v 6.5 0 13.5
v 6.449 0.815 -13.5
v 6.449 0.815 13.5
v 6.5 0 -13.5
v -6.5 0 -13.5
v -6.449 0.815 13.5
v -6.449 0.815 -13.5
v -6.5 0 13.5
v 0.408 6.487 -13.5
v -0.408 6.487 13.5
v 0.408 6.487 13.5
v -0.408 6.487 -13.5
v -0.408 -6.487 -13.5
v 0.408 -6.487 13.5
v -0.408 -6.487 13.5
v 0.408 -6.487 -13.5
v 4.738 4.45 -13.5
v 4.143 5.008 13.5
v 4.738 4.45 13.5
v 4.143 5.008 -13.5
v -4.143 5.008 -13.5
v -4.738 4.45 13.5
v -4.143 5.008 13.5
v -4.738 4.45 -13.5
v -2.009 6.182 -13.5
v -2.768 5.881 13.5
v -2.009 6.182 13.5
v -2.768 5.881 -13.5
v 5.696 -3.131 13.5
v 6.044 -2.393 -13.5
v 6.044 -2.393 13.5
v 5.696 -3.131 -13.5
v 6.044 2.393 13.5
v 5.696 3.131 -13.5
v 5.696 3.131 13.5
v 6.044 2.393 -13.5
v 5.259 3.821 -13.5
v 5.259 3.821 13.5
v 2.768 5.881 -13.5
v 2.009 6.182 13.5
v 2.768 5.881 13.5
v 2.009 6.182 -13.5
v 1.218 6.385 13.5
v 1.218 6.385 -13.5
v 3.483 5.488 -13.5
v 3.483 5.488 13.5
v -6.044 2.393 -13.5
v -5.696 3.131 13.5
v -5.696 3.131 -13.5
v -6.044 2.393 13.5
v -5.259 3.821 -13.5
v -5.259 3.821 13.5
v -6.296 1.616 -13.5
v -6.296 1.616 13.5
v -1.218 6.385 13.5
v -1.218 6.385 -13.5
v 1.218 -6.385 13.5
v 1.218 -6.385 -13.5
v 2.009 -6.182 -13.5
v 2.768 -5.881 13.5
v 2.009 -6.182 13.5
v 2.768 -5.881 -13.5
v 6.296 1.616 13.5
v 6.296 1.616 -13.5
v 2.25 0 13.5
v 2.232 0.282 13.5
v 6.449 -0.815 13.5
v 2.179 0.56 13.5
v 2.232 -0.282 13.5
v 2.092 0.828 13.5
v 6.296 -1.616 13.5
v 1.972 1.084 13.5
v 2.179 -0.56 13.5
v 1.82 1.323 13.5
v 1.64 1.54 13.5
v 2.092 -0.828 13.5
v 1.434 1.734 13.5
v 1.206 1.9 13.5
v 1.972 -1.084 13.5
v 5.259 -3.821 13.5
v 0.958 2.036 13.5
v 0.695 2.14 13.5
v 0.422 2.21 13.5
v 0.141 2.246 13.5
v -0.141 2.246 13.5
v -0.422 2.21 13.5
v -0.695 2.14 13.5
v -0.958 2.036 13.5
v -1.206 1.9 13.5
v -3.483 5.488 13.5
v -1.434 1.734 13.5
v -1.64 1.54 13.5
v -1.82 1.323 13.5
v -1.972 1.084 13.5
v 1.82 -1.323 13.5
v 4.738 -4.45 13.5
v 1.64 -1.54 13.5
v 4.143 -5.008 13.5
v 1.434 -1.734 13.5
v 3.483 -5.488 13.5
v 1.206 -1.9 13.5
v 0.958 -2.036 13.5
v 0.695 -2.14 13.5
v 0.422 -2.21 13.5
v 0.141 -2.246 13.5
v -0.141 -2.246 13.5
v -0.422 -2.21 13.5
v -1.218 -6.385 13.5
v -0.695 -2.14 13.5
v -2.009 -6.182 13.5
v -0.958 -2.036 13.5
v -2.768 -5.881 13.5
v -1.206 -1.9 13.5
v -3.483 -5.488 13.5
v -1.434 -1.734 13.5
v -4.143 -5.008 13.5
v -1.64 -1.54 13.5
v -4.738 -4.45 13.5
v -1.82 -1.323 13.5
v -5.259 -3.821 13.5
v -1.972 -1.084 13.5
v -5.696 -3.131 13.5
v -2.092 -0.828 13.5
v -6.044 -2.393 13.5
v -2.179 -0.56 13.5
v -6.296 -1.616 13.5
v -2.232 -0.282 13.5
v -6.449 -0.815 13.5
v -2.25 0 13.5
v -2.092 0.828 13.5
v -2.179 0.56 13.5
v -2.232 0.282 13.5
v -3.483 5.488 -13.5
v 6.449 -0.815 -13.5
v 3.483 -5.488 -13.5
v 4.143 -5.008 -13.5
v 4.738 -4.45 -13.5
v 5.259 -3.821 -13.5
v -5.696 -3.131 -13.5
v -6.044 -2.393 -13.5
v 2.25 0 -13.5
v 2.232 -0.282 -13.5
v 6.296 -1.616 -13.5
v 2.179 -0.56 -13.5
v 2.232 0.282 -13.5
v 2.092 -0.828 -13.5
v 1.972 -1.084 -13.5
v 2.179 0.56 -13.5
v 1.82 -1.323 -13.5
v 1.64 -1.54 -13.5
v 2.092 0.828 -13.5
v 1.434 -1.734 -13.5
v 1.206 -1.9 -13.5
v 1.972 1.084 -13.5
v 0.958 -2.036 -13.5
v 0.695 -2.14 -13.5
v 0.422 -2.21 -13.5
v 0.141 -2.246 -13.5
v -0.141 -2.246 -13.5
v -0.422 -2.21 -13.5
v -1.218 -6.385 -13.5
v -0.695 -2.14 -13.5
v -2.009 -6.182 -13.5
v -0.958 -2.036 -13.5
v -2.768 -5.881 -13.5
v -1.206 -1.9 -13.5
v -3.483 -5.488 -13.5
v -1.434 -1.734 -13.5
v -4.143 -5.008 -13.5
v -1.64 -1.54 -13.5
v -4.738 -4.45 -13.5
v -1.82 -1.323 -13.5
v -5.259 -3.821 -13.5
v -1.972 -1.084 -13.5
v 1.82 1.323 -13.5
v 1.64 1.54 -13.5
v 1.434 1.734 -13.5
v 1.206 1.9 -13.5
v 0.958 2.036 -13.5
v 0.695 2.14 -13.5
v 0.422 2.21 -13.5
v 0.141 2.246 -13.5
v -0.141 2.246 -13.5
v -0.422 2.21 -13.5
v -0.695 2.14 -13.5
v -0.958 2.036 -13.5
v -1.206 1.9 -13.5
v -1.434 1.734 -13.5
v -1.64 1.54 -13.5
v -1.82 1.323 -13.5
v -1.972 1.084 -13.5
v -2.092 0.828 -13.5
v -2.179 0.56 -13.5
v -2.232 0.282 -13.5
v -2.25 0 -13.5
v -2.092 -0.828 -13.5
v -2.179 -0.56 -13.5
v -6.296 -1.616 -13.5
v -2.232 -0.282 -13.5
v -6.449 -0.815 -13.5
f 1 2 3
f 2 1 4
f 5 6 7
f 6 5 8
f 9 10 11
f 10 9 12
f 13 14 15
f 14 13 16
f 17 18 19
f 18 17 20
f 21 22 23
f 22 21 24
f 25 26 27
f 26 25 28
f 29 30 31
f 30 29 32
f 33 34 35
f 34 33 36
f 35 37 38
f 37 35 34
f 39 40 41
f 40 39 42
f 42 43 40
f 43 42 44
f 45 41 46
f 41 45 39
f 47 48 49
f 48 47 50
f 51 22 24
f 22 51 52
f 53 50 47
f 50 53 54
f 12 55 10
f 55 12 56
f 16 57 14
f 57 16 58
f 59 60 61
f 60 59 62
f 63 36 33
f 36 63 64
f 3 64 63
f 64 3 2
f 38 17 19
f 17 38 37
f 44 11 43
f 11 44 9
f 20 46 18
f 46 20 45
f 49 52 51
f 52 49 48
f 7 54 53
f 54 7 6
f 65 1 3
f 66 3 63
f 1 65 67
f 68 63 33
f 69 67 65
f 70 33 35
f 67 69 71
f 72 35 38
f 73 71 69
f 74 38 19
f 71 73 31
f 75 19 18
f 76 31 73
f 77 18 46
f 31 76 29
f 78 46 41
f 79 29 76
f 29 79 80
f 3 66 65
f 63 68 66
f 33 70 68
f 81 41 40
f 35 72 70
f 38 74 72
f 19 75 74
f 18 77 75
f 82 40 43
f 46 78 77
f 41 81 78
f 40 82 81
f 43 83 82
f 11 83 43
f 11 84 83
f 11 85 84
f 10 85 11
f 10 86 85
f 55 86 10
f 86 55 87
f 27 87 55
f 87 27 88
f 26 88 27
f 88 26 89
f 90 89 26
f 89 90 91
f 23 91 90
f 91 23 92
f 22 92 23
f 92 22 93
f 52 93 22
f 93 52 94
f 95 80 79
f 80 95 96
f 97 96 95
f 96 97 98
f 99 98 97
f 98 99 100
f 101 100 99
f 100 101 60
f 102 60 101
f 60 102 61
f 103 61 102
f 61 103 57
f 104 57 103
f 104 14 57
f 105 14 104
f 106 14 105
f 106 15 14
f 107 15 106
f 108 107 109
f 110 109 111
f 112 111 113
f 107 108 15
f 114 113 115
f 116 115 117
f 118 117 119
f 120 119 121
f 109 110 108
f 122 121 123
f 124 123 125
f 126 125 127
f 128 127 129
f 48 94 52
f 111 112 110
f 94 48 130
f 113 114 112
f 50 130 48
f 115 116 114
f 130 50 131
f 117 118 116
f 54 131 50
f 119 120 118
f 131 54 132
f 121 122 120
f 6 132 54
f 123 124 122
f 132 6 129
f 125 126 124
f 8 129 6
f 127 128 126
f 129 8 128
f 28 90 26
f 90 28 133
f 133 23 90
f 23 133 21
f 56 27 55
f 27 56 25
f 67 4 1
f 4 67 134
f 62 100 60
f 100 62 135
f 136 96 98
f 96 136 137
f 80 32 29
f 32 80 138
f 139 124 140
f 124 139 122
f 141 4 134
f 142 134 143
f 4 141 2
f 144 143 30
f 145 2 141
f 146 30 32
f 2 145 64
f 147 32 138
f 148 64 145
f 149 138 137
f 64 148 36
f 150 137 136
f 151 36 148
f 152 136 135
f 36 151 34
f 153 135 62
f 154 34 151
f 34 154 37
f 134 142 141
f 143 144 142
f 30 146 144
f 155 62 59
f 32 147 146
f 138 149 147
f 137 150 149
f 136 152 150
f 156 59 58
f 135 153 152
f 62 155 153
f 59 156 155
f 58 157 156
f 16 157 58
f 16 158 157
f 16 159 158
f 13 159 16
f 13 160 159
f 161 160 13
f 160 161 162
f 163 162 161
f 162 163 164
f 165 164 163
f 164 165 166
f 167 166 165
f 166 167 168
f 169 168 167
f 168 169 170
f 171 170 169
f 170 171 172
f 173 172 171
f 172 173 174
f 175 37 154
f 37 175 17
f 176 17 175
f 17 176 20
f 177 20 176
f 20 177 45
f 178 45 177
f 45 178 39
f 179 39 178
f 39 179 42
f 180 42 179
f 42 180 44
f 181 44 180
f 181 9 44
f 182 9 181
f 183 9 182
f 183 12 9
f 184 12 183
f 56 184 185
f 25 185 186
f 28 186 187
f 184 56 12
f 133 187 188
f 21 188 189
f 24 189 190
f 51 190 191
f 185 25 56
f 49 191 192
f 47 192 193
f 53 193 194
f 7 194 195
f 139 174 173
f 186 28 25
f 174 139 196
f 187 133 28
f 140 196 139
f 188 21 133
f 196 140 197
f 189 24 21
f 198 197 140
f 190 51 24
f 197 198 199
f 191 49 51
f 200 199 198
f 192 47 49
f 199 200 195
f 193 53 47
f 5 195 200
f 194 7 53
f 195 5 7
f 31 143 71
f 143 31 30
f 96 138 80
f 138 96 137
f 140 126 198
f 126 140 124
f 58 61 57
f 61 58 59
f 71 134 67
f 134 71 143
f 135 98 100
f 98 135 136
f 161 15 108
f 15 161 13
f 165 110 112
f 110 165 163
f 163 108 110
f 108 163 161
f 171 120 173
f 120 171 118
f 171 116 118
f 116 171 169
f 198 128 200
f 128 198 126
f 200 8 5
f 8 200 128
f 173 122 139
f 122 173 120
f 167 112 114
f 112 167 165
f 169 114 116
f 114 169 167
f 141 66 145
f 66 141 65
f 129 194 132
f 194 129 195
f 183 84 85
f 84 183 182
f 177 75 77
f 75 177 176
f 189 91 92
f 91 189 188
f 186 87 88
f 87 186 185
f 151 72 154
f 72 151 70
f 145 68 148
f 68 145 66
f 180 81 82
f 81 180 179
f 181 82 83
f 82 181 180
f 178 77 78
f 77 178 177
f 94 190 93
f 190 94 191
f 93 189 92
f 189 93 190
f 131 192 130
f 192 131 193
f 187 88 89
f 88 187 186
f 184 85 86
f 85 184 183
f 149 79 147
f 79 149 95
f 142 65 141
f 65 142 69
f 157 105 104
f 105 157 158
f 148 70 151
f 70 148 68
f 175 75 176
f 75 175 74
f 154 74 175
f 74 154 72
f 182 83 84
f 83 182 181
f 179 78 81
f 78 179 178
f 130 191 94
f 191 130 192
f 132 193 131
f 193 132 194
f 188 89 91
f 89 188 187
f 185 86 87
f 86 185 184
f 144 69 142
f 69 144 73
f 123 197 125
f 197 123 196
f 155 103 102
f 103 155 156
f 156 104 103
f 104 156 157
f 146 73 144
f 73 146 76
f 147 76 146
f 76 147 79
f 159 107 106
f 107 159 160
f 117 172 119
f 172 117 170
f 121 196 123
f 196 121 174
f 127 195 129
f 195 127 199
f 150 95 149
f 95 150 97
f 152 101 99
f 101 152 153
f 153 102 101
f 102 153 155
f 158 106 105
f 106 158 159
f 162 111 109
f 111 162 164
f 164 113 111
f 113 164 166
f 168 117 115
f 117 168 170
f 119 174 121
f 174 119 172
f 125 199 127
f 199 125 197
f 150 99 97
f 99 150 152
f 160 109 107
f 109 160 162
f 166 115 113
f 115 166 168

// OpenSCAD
$fn = 50;


difference() {
	union() {
		translate(v = [0, 0, -13.5000000000]) {
			cylinder(h = 27, r = 6.5000000000);
		}
	}
	union() {
		translate(v = [0, 0, -100.0000000000]) {
			cylinder(h = 200, r = 2.2500000000);
		}
	}
}
